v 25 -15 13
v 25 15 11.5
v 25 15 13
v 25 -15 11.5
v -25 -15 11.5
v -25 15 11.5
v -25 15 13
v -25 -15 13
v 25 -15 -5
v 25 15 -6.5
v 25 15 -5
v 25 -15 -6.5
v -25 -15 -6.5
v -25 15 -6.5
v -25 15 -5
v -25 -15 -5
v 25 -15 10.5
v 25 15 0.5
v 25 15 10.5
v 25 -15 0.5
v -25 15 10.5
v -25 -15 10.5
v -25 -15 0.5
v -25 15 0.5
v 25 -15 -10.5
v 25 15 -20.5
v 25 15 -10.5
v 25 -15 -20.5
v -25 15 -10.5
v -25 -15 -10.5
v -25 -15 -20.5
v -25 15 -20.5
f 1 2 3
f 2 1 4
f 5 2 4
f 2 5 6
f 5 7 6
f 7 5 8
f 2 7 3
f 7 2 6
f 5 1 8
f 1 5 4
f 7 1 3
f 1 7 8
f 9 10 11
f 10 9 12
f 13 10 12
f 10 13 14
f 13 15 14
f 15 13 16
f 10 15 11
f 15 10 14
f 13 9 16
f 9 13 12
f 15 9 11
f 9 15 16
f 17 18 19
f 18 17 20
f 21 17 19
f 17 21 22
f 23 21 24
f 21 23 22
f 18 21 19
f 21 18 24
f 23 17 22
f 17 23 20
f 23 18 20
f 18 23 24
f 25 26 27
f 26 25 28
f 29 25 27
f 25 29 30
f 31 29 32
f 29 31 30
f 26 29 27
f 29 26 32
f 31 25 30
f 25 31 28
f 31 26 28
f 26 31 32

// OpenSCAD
// Dimensions for components
plate_length = 50; // Length of the rectangular plates
plate_width = 30;  // Width of the rectangular plates
plate_thickness = 5; // Thickness of the flat rectangular plates
beveled_plate_thickness = 3; // Thickness of the thin rectangular plates with beveled edges
bevel_size = 5; // Size of the bevel on the beveled plates

// Function to create a flat rectangular plate
module flat_rectangular_plate() {
    cube([plate_length, plate_width, plate_thickness], center = true);
}

// Function to create a thin rectangular plate with beveled edges
module thin_rectangular_plate_with_beveled_edges() {
    difference() {
        cube([plate_length, plate_width, beveled_plate_thickness], center = true);
        translate([-plate_length/2, -plate_width/2, 0])
            hull() {
                translate([0, 0, 0])
                    cube([bevel_size, plate_width, beveled_plate_thickness], center = false);
                translate([plate_length - bevel_size, 0, 0])
                    cube([bevel_size, plate_width, beveled_plate_thickness], center = false);
            }
    }
}

// Assembling the layers based on the graph_dict
module flexible_coupling() {
    // Layer 1: Thin rectangular plate with beveled edges
    translate([0, 0, plate_thickness * 2 + beveled_plate_thickness])
        thin_rectangular_plate_with_beveled_edges();

    // Layer 2: Flat rectangular plate
    translate([0, 0, plate_thickness + beveled_plate_thickness])
        flat_rectangular_plate();

    // Layer 3: Flat rectangular plate
    translate([0, 0, beveled_plate_thickness])
        flat_rectangular_plate();

    // Layer 4: Thin rectangular plate with beveled edges
    translate([0, 0, -plate_thickness])
        thin_rectangular_plate_with_beveled_edges();

    // Layer 5: Flat rectangular plate
    translate([0, 0, -plate_thickness * 2 - beveled_plate_thickness])
        flat_rectangular_plate();

    // Layer 6: Flat rectangular plate
    translate([0, 0, -plate_thickness * 3 - beveled_plate_thickness])
        flat_rectangular_plate();
}

// Render the flexible coupling
flexible_coupling();
